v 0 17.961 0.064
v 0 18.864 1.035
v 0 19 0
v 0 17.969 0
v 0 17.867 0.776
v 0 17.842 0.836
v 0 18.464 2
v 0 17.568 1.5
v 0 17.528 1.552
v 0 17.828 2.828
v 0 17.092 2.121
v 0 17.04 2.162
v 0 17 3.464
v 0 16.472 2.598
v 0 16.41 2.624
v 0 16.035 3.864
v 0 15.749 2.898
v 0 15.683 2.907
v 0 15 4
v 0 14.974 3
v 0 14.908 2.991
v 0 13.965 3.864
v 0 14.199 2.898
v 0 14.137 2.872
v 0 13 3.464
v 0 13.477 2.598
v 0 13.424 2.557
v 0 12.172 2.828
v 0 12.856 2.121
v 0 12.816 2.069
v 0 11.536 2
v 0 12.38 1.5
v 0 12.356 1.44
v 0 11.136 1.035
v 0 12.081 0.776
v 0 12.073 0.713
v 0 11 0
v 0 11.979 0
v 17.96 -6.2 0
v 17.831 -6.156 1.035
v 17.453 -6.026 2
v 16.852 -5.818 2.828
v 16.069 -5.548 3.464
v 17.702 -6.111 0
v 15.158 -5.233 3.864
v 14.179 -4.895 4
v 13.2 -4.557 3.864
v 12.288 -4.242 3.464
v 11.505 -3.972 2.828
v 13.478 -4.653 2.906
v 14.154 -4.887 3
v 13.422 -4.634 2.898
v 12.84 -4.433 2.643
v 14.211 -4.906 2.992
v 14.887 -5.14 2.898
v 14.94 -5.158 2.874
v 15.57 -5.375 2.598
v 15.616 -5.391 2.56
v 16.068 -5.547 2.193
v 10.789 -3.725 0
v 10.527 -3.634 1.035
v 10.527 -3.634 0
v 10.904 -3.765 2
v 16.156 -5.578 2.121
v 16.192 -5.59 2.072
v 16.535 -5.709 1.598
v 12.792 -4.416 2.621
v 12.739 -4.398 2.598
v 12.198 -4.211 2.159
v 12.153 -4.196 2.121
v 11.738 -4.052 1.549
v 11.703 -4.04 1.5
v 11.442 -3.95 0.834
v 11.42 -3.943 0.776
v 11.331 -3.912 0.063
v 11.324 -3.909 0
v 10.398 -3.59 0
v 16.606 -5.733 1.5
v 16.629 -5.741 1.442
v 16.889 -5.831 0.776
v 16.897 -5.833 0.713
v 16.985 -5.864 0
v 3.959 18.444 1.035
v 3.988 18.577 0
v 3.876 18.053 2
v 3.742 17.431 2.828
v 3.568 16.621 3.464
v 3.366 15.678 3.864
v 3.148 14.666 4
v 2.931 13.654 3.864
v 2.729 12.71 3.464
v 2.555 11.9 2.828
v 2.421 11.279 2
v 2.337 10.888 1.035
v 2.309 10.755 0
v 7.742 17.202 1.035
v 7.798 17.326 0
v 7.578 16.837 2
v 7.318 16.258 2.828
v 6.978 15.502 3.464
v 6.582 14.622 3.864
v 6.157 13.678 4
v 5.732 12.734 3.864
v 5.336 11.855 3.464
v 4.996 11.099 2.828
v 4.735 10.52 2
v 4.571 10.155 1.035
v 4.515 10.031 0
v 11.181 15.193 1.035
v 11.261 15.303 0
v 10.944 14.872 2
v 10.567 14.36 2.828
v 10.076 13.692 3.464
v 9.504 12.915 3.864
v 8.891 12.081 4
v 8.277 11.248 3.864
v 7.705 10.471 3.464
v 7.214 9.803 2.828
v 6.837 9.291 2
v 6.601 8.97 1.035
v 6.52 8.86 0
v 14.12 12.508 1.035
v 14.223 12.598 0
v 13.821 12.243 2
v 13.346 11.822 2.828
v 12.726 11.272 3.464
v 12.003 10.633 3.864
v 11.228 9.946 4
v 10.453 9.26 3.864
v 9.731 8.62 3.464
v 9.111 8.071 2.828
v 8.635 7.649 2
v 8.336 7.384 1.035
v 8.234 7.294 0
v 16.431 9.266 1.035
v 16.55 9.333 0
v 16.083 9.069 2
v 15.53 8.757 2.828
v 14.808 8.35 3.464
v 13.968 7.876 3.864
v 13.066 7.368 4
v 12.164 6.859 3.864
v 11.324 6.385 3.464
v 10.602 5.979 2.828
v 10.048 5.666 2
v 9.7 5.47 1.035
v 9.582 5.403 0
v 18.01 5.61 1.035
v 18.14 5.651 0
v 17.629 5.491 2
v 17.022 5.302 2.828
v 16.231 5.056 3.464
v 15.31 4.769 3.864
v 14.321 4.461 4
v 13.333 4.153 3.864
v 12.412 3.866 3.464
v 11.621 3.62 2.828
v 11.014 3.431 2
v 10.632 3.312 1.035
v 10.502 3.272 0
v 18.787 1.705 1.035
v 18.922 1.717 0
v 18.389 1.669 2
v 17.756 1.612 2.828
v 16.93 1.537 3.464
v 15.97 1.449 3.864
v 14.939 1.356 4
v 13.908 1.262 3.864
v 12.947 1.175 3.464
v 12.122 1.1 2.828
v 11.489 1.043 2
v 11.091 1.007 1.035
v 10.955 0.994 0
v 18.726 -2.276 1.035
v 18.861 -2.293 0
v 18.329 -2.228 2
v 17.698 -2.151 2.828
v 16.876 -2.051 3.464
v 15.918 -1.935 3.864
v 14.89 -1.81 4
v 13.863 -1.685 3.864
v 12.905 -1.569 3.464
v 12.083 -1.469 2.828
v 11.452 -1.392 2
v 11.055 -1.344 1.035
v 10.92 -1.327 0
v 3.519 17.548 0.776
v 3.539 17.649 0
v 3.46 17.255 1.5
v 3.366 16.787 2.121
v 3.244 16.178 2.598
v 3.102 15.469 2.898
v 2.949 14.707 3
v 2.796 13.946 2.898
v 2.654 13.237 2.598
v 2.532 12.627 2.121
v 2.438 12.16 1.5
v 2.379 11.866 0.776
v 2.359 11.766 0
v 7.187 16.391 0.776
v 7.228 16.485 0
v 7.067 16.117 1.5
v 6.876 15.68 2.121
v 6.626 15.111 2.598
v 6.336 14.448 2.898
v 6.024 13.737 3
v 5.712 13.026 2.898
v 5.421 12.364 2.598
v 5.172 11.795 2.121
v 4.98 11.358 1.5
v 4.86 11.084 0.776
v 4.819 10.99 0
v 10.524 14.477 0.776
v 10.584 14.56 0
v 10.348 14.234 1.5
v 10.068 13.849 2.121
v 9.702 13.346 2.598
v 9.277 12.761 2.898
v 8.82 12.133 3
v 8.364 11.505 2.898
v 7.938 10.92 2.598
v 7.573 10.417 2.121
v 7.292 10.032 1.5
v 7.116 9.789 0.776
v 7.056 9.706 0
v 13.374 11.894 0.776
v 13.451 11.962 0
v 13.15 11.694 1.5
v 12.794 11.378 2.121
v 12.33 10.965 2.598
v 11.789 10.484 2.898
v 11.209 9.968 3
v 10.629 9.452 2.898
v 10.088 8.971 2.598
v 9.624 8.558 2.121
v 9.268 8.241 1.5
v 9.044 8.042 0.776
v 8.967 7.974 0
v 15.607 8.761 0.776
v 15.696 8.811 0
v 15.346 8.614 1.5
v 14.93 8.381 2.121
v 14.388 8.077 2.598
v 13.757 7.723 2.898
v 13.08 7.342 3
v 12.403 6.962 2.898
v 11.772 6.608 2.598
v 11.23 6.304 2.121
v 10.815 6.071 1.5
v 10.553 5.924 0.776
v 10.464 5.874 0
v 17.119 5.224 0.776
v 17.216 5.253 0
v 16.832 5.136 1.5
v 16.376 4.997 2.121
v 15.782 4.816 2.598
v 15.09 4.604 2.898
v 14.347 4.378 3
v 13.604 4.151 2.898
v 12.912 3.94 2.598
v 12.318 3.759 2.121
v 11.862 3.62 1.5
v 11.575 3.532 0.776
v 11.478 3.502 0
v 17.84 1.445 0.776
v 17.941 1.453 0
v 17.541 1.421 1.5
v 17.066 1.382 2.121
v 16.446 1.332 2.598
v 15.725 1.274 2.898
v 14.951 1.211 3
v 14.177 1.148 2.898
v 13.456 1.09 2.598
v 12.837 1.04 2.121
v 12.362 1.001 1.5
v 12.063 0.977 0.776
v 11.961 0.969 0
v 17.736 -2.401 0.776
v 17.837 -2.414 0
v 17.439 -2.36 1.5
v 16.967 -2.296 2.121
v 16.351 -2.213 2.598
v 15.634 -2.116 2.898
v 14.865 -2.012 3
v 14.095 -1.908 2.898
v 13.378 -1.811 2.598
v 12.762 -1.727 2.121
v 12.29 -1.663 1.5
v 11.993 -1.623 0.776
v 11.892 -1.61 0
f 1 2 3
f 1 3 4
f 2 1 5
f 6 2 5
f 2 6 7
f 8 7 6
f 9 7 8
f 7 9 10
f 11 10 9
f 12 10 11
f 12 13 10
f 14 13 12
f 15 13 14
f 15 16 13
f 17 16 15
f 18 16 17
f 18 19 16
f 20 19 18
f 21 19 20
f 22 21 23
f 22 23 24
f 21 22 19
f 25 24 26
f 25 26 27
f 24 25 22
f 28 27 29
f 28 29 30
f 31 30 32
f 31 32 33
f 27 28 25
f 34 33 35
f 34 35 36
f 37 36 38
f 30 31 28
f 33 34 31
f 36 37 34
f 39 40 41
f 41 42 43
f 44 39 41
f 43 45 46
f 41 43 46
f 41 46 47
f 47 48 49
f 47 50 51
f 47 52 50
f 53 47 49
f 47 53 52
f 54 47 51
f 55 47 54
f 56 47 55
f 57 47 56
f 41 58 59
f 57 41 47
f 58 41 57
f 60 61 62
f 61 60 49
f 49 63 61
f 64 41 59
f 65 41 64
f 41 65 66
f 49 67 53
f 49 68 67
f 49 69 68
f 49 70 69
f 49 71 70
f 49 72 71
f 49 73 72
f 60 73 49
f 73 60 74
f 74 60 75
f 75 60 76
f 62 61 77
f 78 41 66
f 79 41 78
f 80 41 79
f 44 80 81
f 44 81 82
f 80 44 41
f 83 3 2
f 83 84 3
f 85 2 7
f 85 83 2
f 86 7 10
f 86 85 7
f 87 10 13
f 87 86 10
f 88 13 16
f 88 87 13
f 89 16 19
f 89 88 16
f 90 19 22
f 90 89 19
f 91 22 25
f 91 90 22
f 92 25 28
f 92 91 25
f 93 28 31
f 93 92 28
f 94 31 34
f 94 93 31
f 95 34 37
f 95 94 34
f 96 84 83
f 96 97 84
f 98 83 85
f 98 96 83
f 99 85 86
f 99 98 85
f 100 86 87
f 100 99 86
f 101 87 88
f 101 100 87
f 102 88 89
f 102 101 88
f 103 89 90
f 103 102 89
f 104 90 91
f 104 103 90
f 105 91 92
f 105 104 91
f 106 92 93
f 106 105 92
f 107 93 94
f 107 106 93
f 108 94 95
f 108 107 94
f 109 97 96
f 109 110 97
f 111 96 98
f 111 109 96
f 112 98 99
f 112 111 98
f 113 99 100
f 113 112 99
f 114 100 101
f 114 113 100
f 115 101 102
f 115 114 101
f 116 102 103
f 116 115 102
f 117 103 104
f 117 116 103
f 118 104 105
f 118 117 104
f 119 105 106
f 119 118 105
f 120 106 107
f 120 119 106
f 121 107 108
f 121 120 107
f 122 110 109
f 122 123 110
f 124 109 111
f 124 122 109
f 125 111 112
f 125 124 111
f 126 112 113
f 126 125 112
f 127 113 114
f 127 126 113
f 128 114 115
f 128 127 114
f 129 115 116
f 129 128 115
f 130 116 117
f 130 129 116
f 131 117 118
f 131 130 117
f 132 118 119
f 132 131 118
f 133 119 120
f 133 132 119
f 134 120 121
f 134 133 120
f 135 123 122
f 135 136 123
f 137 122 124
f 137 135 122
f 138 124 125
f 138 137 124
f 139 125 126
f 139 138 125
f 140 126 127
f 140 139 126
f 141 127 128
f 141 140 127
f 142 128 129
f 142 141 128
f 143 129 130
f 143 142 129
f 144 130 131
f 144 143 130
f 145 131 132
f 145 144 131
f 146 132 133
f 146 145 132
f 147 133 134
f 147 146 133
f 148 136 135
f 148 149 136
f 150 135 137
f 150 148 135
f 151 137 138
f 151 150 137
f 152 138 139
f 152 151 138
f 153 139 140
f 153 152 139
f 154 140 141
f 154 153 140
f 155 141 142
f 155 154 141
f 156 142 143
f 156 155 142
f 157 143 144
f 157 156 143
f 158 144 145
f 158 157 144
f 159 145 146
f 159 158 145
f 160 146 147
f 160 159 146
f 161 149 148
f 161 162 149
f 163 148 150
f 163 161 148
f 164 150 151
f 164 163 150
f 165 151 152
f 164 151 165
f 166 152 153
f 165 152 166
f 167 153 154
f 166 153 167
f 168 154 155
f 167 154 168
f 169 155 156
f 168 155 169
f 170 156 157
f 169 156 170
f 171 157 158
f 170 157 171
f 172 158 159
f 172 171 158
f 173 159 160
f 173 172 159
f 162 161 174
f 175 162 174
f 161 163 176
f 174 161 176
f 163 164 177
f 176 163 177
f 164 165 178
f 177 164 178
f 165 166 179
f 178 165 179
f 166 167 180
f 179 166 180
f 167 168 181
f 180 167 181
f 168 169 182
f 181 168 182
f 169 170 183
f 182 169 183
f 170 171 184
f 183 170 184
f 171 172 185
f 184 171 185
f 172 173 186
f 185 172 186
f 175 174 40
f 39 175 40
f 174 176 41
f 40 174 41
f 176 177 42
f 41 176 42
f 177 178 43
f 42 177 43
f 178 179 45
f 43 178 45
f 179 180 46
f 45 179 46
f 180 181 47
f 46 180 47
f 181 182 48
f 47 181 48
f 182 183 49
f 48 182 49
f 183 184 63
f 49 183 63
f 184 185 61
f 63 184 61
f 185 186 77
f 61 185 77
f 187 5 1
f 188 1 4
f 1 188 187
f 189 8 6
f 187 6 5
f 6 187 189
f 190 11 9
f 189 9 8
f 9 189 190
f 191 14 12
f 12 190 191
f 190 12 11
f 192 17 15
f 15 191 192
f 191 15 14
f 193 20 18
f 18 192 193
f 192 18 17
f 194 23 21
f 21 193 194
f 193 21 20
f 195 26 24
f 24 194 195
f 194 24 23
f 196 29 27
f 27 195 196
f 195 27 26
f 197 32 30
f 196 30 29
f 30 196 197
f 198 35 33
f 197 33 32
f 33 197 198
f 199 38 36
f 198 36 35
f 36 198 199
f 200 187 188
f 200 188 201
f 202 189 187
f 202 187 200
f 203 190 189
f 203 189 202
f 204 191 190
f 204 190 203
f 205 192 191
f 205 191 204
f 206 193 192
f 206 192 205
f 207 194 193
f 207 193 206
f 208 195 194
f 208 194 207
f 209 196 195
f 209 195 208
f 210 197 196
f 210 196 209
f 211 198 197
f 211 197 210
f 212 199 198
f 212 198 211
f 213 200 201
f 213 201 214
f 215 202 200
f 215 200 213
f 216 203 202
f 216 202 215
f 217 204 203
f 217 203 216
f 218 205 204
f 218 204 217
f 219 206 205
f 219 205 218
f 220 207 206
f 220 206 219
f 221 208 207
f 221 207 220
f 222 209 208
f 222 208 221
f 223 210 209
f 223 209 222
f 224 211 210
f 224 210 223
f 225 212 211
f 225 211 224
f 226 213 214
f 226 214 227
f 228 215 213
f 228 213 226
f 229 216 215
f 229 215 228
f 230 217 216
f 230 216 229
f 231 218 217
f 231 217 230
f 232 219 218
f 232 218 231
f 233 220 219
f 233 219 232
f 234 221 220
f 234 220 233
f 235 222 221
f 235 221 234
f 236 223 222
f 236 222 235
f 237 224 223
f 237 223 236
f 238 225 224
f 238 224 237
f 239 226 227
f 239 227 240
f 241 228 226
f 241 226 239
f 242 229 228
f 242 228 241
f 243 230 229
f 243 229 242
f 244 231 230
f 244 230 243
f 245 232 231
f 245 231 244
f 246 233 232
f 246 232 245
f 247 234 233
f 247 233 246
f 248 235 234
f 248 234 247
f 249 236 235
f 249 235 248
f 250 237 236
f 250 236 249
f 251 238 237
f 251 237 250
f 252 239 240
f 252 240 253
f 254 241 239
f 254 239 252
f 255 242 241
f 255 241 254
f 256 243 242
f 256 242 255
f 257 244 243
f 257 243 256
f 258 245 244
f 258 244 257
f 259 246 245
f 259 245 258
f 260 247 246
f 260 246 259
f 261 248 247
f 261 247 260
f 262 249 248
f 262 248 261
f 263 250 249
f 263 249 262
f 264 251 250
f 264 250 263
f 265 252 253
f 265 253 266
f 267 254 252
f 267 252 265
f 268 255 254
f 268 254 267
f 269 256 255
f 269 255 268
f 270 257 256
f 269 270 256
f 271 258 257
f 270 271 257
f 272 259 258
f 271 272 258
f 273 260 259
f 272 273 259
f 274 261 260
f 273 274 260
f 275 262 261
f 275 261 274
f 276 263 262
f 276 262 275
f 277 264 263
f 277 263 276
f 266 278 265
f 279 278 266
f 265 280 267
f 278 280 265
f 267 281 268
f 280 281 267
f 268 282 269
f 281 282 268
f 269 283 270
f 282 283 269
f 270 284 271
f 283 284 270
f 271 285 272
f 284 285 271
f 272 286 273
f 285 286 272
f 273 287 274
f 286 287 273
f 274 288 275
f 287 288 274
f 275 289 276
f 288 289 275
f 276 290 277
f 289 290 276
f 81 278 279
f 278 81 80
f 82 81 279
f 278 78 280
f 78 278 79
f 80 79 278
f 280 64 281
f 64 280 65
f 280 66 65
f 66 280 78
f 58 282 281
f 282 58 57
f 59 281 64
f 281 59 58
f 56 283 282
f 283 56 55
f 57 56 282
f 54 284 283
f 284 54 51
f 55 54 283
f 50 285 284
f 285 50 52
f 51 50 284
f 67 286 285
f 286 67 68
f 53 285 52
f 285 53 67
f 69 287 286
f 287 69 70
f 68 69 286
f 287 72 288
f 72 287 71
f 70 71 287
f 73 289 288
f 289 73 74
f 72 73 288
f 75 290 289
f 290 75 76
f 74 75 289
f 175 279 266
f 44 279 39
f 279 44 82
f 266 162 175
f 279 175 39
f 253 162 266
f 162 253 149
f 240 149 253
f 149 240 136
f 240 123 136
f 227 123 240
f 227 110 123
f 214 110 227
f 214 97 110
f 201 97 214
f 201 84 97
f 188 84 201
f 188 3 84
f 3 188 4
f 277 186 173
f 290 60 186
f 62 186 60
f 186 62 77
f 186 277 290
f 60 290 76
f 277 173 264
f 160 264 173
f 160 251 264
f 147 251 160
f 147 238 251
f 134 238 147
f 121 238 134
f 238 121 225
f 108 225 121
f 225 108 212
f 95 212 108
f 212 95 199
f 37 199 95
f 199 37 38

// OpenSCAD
// file: ../build_environments.scad
// build_environments.scad: modules to build level sections
//

module pool(diameter=10.0, wall_height=2.0, step_width=3.0, connections=[])
{
    difference() {
        union() {
        difference() {
            cylinder(h=0.5,r1=diameter+step_width,r2=diameter+step_width,$fn=48);
            translate([0,0,-0.1])
                cylinder(h=0.7,r1=diameter,r2=diameter,$fn=48);
        }
        difference() {
            cylinder(h=wall_height,r1=diameter+step_width+1.0,r2=diameter+step_width+1.0,$fn=48);
            translate([0,0,-0.1])
                cylinder(h=wall_height+0.2,r1=diameter+step_width,r2=diameter+step_width,$fn=48);
        }
        }
    
        for (c = connections)
        {
            rotate([0,90,0]) {
                angle = atan2(c[1],c[0]);
                rotate([-angle,0,0]) {
                    cylinder(h=diameter+5.0,r1=c[2],r2=c[2],$fn=48);
                }
            }
        }
    }
}

module straight(length=10.0, width=2.0, dy1=0.0, dy2=0.0, dz=0.0)
{
    dims = [0, 0, 0, 0, 0, (dz/length)];
    matrix = [
        [ 1, dims[0], dims[1], 0 ],
        [ dims[2], 1, dims[4], 0 ],
        [ dims[5], dims[3], 1, 0 ],
        [ 0, 0, 0, 1 ]
    ];
    multmatrix(matrix)
    difference() {
        translate([dy1,0,0])
        union() {
            rotate([0,90,0]) {
                difference() {
                    cylinder(h=(length-dy1-dy2),r1=width+1.0,r2=width+1.0,$fn=24);
                    translate([0,0,-0.1])
                        cylinder(h=(length-dy1-dy2+0.2),r1=width,r2=width,$fn=24);
                }
                difference() {
                    cylinder(h=1.0,r1=width+2.0,r2=width+2.0,$fn=24);
                    translate([0,0,-0.1])
                        cylinder(h=1.2,r1=width,r2=width,$fn=24);
                }
                translate([0,0,(length-dy1-dy2)-1.0]) {
                    difference() {
                        cylinder(h=1.0,r1=width+2.0,r2=width+2.0,$fn=24);
                        translate([0,0,-0.1])
                            cylinder(h=1.2,r1=width,r2=width,$fn=24);
                    }
                }
            }
        }
        translate([0,0,-(2*width+4.0)/2])
            cube([3*length,3*length,2*width+4.0],center=true);
    }
}

module curve(p0=[0,0], center=[0,0], dir=1, angle=0.0, width=2.0)
{
    radius = sqrt((p0[0]-center[0])*(p0[0]-center[0]) + (p0[1]-center[1])*(p0[1]-center[1]));
    if (dir == 0) {
        difference() {
            rotate([0,0,-90])
            difference() {
                rotate_extrude(angle = angle, convexity = 10, $fn=32)
                    translate([radius, 0, 0])
                        circle(r = width+1.0,$fn=24);
                rotate([0,0,-1.0])
                    rotate_extrude(angle = angle+2.0, convexity = 10, $fn=32)
                        translate([radius, 0, 0])
                            circle(r = width,$fn=24);
            }
            translate([0,0,-(2*width+4.0)/2])
                cube([5*radius,5*radius,2*width+4.0],center=true);
        }
    }
    else {
        difference() {
            rotate([0,0,90])
            difference() {
                rotate_extrude(angle = -angle, convexity = 10, $fn=32)
                    translate([radius, 0, 0])
                        circle(r = width+1.0,$fn=24);
                rotate([0,0,1.0])
                    rotate_extrude(angle = -angle-2.0, convexity = 10, $fn=32)
                        translate([radius, 0, 0])
                            circle(r = width,$fn=24);
            }
            translate([0,0,-(2*width+4.0)/2])
                cube([5*radius,5*radius,2*width+4.0],center=true);
        }
    }

}

// test pool
//pool(diameter=12.0000, wall_height=3.0000, step_width=3.0000, connections=[[0.0000,-26.0000,2.0000], [23.6074,0.0000,2.0000]]);

// test straight, slope
//straight(length=26.0000, width=2.0000, dy1=11.8322, dy2=6.7082, dz=0.0000);
//straight(length=29.1549, width=12.0000, dy1=0.0000, dy2=0.0000, dz=-15.0000);

// test curve
//curve(p0=[23.6074, 0.0000], center=[23.6074, 5.0000], dir=0, angle=60.1011, width=2.0000);
//curve(p0=[33.6426, 12.4219], center=[37.9771, 9.9295], dir=1, angle=120.4627, width=2.0000);
// main file
use <../build_environments.scad>;
curve(p0=[41.6333, -23.7612], center=[50.5610, -35.8152], dir=1, angle=109.0466, width=3.0000);
